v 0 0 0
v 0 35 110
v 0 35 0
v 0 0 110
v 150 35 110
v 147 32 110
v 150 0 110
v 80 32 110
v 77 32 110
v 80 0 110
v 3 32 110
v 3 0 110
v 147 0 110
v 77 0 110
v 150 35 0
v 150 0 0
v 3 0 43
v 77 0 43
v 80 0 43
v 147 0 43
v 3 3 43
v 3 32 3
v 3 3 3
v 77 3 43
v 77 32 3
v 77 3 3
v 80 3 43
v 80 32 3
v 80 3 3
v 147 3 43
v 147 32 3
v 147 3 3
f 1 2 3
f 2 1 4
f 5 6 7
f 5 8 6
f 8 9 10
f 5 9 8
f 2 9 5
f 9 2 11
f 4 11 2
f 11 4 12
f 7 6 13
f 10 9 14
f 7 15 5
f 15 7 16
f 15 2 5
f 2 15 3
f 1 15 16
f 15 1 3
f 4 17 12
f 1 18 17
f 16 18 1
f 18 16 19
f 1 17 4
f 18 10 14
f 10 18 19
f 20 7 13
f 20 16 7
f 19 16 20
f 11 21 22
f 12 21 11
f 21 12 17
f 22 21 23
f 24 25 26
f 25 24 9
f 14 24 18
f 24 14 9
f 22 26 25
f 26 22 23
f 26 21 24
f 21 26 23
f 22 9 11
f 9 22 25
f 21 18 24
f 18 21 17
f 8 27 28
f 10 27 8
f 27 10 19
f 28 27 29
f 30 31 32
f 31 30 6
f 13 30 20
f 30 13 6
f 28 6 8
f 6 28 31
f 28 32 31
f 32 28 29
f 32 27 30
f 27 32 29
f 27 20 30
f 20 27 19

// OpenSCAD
wall_thickness=3;
floor_thickness=wall_thickness;

total_height = 110;

box1_width=80-2*wall_thickness;
box2_width=70-wall_thickness;
total_width=box1_width+box2_width+3*wall_thickness;

box_length=35-2*wall_thickness;
total_length=box_length+2*wall_thickness;

z_offset=40;

echo("Total w=", total_width, " and l=", total_length);

difference(){
    cube([total_width,total_length,total_height]);
    //box1   
    translate([wall_thickness,wall_thickness,floor_thickness])cube([box1_width,box_length,total_height]);
    
    // upper part cut
        translate([wall_thickness,-wall_thickness,floor_thickness+z_offset])cube([box1_width,box_length,total_height]);
    
    //box2
    translate([wall_thickness*2+box1_width,wall_thickness,floor_thickness])cube([box2_width,box_length,total_height]);
    
    translate([wall_thickness*2+box1_width,-wall_thickness,floor_thickness+z_offset])cube([box2_width,box_length,total_height]);
}
